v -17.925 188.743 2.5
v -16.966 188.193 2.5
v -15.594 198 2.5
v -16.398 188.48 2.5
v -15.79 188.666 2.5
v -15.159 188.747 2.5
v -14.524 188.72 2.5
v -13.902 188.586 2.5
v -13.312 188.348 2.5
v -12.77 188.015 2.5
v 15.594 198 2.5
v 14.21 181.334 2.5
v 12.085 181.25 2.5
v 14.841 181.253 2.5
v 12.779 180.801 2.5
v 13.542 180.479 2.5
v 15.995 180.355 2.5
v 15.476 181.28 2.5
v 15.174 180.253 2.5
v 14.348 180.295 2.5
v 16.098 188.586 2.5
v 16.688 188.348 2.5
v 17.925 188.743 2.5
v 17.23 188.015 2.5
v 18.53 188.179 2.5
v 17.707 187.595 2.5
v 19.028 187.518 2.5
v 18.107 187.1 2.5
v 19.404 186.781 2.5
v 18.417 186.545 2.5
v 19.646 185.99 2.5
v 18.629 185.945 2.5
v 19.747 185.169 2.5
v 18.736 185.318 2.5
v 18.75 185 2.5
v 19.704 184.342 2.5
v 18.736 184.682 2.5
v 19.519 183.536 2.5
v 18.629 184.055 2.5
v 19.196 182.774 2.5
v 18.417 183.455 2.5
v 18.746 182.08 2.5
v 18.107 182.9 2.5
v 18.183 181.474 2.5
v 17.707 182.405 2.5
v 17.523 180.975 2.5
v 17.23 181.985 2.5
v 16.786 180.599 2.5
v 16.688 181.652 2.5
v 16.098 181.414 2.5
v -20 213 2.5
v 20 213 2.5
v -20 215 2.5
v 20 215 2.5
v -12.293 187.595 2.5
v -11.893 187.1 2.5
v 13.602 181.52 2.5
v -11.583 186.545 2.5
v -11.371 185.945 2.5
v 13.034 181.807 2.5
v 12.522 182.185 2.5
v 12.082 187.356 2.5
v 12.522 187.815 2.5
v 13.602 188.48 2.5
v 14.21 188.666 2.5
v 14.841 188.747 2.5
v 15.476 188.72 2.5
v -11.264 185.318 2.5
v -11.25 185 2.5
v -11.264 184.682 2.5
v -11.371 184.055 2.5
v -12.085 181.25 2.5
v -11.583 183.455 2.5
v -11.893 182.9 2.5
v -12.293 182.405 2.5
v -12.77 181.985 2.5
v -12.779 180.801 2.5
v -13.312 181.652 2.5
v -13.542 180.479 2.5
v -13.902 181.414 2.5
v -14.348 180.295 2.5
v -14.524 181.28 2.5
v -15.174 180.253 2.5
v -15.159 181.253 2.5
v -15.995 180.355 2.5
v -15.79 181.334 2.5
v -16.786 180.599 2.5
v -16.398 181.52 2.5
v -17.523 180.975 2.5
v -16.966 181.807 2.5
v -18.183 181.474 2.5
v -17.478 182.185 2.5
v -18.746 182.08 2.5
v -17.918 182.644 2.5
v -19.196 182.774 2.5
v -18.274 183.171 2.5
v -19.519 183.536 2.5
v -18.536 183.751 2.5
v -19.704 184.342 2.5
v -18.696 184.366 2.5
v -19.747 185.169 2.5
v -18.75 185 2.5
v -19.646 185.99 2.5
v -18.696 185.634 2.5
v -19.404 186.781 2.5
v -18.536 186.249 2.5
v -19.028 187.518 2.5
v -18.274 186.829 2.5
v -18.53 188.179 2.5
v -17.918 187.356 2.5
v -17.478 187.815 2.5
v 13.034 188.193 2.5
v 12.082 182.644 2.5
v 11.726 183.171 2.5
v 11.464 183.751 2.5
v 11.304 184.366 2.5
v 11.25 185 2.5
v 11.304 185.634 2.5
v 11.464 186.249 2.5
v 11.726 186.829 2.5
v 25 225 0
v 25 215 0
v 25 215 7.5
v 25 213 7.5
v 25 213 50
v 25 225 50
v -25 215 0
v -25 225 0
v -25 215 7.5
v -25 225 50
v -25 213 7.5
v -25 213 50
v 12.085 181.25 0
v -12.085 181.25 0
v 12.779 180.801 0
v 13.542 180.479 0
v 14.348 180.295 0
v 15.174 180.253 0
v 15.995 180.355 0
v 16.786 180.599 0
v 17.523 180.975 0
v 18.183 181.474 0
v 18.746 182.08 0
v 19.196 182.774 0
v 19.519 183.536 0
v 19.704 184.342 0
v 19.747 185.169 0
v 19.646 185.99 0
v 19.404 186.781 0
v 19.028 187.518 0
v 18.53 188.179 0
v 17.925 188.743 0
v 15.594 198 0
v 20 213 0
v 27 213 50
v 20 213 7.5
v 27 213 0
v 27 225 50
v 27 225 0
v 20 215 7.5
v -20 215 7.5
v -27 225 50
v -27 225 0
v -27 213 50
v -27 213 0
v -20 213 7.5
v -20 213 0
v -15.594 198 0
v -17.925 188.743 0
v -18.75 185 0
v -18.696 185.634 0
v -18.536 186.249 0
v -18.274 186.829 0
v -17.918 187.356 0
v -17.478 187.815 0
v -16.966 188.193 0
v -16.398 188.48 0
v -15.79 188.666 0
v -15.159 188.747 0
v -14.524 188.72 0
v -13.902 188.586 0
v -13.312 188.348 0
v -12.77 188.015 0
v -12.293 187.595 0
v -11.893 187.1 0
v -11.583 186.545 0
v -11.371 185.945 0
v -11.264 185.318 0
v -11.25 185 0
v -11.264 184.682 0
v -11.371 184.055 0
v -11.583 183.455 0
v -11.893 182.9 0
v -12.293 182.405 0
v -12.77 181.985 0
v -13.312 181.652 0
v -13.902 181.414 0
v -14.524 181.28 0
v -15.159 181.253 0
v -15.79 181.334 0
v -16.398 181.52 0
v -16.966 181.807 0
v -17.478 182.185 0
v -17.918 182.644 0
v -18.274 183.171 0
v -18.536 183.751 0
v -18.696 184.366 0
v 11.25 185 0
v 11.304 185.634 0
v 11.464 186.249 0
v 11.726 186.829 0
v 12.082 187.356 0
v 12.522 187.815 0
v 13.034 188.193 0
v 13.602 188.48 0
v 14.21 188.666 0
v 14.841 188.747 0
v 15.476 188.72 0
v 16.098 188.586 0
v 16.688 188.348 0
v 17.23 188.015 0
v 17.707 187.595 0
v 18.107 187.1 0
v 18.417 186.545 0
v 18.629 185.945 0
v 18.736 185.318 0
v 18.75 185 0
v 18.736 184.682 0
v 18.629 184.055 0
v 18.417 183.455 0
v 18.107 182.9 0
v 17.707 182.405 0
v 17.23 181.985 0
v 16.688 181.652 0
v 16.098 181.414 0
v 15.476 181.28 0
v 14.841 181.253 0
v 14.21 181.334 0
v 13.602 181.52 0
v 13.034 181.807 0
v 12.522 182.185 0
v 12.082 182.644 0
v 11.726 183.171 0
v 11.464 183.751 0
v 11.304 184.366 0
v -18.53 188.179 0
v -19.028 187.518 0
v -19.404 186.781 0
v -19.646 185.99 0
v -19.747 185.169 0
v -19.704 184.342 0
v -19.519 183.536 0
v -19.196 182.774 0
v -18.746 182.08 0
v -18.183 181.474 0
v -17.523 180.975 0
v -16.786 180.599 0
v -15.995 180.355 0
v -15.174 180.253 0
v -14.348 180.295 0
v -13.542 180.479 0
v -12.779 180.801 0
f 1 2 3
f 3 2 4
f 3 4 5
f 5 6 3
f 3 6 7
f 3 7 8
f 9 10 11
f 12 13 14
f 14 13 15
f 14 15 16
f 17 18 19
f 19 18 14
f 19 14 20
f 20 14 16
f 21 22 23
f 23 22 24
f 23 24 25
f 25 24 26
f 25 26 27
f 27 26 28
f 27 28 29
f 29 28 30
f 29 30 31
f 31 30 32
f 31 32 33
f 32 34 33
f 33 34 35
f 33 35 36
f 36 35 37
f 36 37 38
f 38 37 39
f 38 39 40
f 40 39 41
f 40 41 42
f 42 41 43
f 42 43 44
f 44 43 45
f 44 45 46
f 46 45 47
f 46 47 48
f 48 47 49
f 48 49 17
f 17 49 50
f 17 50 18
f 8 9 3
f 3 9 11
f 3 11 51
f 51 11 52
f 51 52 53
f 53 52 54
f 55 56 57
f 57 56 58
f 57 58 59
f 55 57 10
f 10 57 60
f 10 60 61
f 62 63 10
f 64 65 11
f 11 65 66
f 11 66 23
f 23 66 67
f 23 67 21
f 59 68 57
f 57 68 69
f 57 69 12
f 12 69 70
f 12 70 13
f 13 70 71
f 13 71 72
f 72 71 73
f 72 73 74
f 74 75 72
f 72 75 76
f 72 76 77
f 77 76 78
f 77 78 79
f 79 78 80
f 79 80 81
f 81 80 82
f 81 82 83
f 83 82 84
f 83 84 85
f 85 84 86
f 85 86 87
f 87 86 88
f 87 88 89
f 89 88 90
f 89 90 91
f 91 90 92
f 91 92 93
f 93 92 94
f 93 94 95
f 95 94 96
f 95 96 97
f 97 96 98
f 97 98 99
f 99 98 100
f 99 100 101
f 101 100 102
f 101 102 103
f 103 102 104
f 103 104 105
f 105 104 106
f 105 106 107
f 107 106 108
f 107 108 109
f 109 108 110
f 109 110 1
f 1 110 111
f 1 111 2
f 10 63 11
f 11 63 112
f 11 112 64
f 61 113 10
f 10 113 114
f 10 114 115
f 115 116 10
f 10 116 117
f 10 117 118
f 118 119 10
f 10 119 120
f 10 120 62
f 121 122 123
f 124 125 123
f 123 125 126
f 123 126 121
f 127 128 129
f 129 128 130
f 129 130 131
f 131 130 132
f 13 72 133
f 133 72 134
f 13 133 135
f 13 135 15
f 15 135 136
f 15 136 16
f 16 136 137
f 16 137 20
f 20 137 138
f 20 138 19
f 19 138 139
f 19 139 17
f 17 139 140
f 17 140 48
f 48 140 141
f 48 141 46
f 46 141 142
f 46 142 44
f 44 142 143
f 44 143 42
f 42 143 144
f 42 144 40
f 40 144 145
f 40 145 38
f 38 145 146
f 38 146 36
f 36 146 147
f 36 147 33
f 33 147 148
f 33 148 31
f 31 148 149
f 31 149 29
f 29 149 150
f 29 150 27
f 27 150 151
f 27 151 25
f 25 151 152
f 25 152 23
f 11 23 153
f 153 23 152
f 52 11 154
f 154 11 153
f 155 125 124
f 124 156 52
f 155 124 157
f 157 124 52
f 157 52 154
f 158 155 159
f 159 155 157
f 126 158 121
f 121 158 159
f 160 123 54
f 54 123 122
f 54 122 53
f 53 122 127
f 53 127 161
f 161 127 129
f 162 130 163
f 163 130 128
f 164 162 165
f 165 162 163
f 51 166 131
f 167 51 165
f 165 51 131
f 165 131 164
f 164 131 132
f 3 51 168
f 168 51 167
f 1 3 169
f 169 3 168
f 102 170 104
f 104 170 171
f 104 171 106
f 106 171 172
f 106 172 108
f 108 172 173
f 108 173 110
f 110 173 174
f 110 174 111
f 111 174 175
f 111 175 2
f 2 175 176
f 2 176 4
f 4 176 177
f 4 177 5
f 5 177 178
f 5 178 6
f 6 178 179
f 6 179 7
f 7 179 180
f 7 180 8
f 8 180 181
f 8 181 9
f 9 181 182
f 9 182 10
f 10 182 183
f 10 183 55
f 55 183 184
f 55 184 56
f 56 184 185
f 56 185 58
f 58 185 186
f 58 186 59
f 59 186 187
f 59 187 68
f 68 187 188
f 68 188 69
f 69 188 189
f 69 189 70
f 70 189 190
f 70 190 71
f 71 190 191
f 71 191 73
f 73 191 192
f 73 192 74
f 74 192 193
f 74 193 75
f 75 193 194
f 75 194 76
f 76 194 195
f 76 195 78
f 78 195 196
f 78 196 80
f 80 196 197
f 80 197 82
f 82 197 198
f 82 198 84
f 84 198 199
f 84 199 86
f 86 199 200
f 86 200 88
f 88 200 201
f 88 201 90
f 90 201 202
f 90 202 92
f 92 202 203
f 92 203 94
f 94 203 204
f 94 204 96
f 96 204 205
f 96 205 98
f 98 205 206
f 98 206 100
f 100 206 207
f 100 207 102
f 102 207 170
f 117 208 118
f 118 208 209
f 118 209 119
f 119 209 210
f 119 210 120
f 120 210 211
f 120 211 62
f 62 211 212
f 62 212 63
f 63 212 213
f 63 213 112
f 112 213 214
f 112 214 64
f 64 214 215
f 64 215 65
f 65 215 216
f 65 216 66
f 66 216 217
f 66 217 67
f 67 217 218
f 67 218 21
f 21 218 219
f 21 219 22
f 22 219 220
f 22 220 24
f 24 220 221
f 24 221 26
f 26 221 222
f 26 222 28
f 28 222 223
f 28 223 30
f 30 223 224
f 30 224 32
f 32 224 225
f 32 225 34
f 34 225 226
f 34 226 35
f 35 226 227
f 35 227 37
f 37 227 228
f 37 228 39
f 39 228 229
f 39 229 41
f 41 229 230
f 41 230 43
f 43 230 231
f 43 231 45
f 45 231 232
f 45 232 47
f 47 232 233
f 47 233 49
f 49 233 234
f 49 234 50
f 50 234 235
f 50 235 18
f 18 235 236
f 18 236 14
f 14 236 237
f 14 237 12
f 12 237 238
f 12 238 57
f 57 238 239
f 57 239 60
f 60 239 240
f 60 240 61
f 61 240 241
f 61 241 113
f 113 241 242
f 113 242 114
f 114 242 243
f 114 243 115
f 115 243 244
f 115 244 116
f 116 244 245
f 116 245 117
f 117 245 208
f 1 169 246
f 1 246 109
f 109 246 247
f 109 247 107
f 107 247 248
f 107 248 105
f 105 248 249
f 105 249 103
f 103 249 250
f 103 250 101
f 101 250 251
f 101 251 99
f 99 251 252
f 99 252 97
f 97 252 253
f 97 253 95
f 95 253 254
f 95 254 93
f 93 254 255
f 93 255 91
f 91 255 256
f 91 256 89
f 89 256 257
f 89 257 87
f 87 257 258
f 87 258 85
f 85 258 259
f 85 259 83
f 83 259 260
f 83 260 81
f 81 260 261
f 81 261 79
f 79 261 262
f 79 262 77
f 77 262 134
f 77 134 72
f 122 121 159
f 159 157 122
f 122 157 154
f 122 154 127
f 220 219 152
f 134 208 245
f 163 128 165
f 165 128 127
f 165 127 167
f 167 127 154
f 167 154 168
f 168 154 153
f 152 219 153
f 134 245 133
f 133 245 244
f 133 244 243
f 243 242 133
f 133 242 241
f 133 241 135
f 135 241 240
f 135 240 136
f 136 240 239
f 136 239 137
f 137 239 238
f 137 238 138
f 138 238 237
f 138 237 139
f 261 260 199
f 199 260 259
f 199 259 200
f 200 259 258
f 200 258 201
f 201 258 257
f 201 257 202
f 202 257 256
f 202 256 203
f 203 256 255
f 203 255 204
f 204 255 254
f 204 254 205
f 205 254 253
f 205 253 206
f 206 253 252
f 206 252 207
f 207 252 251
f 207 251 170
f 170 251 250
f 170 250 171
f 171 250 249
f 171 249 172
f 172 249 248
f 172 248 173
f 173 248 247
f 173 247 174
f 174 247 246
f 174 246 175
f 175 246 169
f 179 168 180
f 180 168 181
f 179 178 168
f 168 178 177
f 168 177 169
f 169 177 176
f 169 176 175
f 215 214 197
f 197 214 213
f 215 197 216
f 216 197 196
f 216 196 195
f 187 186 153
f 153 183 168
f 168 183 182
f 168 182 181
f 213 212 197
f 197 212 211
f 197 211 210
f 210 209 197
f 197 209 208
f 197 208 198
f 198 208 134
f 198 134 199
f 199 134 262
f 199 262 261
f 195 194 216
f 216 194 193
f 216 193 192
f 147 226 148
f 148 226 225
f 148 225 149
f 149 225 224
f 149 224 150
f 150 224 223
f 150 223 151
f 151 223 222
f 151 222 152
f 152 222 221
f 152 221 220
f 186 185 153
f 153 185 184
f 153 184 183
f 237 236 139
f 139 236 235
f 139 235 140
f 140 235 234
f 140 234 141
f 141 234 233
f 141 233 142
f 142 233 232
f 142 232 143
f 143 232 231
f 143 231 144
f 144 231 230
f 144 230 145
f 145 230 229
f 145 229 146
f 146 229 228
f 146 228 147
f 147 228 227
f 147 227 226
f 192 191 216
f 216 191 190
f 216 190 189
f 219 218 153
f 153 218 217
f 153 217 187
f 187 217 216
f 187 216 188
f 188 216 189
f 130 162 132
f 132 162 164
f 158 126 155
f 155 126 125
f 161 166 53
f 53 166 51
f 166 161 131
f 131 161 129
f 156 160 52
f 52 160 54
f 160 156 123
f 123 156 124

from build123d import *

# Parameters (mm, degrees)
BOSS_EXTRUDE1_DEPTH = 2.5
SKETCH2_W           = 2
SKETCH2_H           = 47.5
BOSS_EXTRUDE2_DEPTH = 12
SKETCH3_W           = 5
SKETCH3_H           = 2
BOSS_EXTRUDE3_DEPTH = 5


with BuildPart() as part:
    # Sketch1 → Boss-Extrude1 (new body)
    with BuildSketch(Plane.XY):
        with BuildLine():
            Line((-20, 215), (-25, 215))
            Line((-25, 215), (-25, 225))
            Line((-25, 225), (-27, 225))
            Line((-27, 225), (-27, 213))
            Line((-27, 213), (-20, 213))
            Line((-20, 213), (-15.594125144, 198))
            Line((-15.594125144, 198), (-17.924730751, 188.7427864))
            ThreePointArc((-17.924730751, 188.7427864), (-18.746396058, 182.079894423), (-12.084524053, 181.25))
            Line((-12.084524053, 181.25), (12.084524053, 181.25))
            ThreePointArc((12.084524053, 181.25), (18.746396058, 182.079894423), (17.924730751, 188.7427864))
            Line((17.924730751, 188.7427864), (15.594125144, 198))
            Line((15.594125144, 198), (20, 213))
            Line((20, 213), (27, 213))
            Line((27, 213), (27, 225))
            Line((27, 225), (25, 225))
            Line((25, 225), (25, 215))
            Line((25, 215), (20, 215))
            Line((20, 215), (-20, 215))
        make_face()
        with BuildLine():
            ThreePointArc((-15, 181.25), (-17.957681098, 182.694653492), (-18.636522555, 185.915534655))
            ThreePointArc((-18.636522555, 185.915534655), (-14.538729788, 188.72152251), (-11.25, 185))
            ThreePointArc((-11.25, 185), (-12.348349571, 182.348349571), (-15, 181.25))
        make_face(mode=Mode.SUBTRACT)
        with BuildLine():
            ThreePointArc((18.75, 185), (17.651650429, 182.348349571), (15, 181.25))
            ThreePointArc((15, 181.25), (12.042318902, 187.305346508), (18.636522555, 185.915534655))
            ThreePointArc((18.636522555, 185.915534655), (18.72152251, 185.461270212), (18.75, 185))
        make_face(mode=Mode.SUBTRACT)
    extrude(amount=BOSS_EXTRUDE1_DEPTH)

    # Sketch2 → Boss-Extrude2 (add)
    with BuildSketch(Plane(origin=(0, 225, 0), x_dir=(1, 0, 0), z_dir=(0, 1, 0))):
        with Locations((26, -26.25)):
            Rectangle(SKETCH2_W, SKETCH2_H)
        with Locations((-26, -26.25)):
            Rectangle(SKETCH2_W, SKETCH2_H)
    extrude(amount=-BOSS_EXTRUDE2_DEPTH)

    # Sketch3 → Boss-Extrude3 (add)
    with BuildSketch(Plane.XY.offset(2.5)):
        with Locations((-22.5, 214)):
            Rectangle(SKETCH3_W, SKETCH3_H)
        with Locations((22.5, 214)):
            Rectangle(SKETCH3_W, SKETCH3_H)
    extrude(amount=BOSS_EXTRUDE3_DEPTH)


solid = part.part
